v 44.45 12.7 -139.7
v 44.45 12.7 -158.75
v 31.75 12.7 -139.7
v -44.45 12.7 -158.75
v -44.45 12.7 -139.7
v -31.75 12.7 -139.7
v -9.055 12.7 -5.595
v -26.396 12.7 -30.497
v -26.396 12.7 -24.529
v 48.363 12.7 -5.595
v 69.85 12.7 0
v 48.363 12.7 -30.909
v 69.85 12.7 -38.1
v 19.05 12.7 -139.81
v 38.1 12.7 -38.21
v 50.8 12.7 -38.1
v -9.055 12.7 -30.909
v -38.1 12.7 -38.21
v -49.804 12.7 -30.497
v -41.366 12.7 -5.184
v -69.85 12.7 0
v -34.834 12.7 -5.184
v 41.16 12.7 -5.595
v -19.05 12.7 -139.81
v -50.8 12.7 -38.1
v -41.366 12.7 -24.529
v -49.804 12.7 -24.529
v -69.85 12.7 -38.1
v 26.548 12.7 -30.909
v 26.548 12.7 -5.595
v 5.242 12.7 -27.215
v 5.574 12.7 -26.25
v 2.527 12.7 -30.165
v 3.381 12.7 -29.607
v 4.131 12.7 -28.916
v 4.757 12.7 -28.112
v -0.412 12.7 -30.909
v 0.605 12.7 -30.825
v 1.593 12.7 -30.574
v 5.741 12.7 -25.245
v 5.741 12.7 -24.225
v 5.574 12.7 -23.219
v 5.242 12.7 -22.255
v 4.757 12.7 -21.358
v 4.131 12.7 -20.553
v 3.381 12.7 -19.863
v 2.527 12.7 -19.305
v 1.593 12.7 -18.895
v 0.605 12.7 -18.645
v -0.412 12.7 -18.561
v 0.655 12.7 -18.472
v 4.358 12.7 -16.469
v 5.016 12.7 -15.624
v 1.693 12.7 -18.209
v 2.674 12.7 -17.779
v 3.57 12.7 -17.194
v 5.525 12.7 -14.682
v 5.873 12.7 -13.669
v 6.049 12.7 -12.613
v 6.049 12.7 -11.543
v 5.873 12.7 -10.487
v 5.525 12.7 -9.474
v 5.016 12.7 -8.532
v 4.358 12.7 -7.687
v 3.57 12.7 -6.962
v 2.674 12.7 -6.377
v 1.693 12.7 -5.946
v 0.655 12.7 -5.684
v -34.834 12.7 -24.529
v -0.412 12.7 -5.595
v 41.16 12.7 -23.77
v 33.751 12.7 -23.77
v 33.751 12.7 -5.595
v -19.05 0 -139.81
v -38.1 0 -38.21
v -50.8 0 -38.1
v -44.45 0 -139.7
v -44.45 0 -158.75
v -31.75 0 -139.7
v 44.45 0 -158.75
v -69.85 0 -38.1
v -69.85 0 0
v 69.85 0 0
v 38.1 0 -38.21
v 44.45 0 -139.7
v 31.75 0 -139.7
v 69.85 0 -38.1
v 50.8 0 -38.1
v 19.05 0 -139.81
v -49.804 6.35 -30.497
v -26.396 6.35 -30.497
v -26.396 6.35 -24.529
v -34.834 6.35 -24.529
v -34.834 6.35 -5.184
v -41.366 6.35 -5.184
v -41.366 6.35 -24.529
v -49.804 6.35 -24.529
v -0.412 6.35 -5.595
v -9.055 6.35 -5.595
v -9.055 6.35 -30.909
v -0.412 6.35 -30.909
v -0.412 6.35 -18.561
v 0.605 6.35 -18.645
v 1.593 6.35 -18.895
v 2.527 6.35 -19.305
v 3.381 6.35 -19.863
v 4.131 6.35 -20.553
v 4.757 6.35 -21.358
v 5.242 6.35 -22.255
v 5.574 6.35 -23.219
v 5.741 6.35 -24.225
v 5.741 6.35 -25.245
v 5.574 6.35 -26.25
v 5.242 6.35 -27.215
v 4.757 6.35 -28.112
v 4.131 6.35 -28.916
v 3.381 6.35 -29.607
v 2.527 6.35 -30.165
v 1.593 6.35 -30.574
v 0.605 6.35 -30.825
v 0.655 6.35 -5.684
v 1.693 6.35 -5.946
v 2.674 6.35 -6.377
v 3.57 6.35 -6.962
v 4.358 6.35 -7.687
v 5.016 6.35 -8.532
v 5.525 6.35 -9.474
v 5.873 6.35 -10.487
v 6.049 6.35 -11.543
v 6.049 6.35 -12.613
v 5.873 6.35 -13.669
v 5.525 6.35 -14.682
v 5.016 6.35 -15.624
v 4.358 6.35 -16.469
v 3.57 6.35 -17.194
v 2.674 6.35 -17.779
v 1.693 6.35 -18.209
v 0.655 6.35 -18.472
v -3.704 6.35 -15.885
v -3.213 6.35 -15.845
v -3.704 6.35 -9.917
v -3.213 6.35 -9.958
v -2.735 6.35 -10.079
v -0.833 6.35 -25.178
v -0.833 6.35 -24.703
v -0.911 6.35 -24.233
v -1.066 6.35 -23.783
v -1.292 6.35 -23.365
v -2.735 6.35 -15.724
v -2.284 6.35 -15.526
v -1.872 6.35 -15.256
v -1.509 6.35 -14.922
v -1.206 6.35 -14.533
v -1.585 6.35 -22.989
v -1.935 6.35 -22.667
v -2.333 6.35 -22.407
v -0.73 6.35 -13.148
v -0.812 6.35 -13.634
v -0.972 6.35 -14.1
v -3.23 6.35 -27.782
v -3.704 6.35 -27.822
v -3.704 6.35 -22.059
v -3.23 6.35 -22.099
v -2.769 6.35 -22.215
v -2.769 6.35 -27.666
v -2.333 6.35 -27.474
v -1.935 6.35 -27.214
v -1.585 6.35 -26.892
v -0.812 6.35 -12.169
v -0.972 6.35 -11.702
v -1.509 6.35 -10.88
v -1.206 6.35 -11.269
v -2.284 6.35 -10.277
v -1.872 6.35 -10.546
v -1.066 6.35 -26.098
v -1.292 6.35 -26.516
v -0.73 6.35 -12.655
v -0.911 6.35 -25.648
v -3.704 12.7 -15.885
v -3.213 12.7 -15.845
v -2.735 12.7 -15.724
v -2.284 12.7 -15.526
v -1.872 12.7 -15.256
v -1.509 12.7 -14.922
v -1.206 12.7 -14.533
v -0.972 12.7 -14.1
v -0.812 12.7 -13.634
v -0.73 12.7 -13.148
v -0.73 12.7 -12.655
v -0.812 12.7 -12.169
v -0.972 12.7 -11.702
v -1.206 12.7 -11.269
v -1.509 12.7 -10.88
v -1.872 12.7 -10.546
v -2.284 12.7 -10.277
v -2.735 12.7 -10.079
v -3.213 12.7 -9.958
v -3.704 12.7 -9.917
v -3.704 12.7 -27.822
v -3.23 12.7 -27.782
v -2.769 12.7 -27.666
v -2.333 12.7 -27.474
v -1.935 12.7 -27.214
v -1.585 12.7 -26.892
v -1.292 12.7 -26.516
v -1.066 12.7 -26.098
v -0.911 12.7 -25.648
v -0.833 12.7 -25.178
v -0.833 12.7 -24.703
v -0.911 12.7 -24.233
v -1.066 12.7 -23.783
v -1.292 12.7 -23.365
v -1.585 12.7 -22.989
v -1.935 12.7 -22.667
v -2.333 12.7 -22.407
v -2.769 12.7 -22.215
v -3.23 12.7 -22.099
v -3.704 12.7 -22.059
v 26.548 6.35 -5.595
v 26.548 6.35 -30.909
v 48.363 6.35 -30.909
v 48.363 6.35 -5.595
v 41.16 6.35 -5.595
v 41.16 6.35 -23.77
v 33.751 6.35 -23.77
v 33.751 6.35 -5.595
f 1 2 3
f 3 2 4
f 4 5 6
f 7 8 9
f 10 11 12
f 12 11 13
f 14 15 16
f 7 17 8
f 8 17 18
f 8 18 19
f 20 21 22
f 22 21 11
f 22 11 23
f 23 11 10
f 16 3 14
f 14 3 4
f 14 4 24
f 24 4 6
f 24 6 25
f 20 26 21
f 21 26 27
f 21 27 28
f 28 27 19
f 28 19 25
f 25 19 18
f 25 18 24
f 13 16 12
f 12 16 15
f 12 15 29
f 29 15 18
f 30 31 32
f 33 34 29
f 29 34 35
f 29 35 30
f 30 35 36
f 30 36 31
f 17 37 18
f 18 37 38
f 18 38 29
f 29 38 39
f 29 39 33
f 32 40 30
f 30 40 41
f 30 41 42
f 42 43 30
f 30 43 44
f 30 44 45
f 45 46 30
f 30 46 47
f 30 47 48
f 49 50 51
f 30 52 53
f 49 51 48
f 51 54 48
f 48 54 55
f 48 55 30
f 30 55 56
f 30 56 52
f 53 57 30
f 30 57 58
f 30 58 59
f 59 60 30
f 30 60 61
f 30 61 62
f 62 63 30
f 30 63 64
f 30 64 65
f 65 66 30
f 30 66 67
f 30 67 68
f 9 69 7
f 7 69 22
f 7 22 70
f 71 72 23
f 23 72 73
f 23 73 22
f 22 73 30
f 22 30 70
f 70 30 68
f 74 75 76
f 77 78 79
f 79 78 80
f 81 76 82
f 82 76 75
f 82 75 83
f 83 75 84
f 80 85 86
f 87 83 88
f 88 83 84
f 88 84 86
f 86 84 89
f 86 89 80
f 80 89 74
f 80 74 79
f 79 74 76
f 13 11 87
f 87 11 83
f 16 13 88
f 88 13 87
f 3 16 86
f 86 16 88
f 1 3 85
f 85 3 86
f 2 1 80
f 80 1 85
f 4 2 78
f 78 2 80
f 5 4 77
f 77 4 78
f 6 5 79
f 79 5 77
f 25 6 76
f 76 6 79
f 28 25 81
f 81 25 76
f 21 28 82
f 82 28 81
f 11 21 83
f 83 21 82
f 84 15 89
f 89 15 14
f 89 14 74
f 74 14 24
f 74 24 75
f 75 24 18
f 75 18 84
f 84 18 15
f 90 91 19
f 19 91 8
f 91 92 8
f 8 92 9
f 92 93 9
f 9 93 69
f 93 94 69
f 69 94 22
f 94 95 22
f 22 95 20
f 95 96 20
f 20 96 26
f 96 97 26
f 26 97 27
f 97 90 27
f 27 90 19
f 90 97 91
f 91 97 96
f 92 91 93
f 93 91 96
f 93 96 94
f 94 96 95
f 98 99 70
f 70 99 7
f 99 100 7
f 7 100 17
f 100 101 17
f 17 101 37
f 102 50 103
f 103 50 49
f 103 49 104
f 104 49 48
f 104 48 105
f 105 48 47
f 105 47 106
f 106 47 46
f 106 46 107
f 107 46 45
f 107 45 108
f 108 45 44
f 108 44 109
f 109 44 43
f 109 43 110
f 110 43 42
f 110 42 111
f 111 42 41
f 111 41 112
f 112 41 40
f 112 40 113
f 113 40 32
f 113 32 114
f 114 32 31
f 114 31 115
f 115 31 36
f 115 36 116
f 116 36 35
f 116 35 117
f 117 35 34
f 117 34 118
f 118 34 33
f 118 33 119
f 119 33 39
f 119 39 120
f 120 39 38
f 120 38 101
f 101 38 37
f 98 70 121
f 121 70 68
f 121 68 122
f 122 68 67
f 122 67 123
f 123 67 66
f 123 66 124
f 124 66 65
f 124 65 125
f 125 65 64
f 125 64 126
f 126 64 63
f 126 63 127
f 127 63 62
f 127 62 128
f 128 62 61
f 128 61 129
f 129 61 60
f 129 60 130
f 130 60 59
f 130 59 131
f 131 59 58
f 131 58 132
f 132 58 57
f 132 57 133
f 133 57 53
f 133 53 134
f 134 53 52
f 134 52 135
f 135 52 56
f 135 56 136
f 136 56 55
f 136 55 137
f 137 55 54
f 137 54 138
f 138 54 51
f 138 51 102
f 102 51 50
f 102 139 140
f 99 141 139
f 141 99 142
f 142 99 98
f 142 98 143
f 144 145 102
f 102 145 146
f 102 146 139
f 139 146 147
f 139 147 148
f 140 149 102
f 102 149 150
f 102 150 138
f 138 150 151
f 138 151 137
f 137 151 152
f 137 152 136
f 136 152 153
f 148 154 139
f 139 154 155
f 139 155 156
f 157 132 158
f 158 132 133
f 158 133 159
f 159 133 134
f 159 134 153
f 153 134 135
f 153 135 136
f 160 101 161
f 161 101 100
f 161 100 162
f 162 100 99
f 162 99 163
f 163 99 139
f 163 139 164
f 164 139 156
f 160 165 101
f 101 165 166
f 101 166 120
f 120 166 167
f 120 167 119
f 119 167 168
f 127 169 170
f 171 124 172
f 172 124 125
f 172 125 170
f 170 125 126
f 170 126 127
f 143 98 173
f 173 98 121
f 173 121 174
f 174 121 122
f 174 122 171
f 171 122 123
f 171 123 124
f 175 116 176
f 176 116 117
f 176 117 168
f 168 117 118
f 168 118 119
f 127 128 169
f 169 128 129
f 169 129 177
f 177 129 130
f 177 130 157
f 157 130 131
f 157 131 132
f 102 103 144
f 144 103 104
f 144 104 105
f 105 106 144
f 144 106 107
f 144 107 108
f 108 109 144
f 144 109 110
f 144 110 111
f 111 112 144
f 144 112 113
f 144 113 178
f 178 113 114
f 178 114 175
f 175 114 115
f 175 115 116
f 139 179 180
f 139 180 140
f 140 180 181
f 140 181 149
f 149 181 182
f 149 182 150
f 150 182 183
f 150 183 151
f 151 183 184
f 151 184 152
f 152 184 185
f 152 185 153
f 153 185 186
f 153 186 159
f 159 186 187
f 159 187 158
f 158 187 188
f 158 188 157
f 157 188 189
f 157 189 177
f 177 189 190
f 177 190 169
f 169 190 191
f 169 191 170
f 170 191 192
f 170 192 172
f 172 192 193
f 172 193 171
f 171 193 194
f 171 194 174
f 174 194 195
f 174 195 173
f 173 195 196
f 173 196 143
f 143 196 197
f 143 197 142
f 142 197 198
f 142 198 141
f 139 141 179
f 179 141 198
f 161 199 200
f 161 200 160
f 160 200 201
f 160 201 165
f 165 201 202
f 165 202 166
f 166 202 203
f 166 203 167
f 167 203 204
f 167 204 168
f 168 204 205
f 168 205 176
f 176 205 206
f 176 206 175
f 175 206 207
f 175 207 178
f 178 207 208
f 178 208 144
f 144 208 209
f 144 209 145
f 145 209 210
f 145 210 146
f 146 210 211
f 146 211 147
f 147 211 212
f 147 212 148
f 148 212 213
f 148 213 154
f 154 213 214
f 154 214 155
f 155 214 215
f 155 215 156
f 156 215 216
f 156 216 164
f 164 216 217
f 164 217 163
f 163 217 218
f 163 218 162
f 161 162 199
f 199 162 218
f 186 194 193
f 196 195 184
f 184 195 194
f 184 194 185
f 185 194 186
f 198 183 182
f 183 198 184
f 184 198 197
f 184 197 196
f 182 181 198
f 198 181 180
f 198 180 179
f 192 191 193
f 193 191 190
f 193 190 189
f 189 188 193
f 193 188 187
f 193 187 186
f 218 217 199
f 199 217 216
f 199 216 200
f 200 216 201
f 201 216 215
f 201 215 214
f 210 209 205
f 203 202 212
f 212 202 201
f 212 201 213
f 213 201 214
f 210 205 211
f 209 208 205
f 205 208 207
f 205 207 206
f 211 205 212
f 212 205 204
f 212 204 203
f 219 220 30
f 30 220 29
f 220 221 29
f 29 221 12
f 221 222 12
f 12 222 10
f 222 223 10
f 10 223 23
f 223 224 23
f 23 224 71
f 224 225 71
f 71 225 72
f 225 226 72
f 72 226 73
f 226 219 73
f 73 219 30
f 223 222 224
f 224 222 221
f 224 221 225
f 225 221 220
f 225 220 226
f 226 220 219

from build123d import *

# Parameters (mm, degrees)
BOSS_EXTRUDE1_DEPTH     = 12.7
CUT_EXTRUDE2_DEPTH      = 33.274
CUT_EXTRUDE2_DEPTH_BACK = 25.4
CUT_EXTRUDE3_DEPTH      = 6.35
CUT_EXTRUDE4_DEPTH      = 6.35
CUT_EXTRUDE5_DEPTH      = 6.35


with BuildPart() as part:
    # Sketch1 → Boss-Extrude1 (new body)
    with BuildSketch(Plane(origin=(0, 0, 0), x_dir=(1, 0, 0), z_dir=(0, 1, 0))):
        Polygon((-69.85, 0), (0, 0), (69.85, 0), (69.85, 38.1), (50.8, 38.1), (31.75, 139.7), (44.45, 139.7), (44.45, 158.75), (0, 158.75), (-44.45, 158.75), (-44.45, 139.7), (-31.75, 139.7), (-50.8, 38.1), (-69.85, 38.1), align=None)
    extrude(amount=BOSS_EXTRUDE1_DEPTH)

    # Sketch3 → Cut-Extrude2 (cut, two sides)
    with BuildSketch(Plane(origin=(0, 0, 0), x_dir=(1, 0, 0), z_dir=(0, 1, 0))) as cut_extrude2_sk:
        Polygon((0, 38.209887603), (-38.1, 38.209887603), (-19.05, 139.809887603), (0, 139.809887603), (19.05, 139.809887603), (38.1, 38.209887603), align=None)
    extrude(amount=CUT_EXTRUDE2_DEPTH, mode=Mode.SUBTRACT)
    extrude(cut_extrude2_sk.sketch, amount=-CUT_EXTRUDE2_DEPTH_BACK, mode=Mode.SUBTRACT)

    # Sketch4 → Cut-Extrude3 (cut)
    with BuildSketch(Plane(origin=(0, 12.7, 0), x_dir=(1, 0, 0), z_dir=(0, 1, 0))):
        Polygon((-38.1, 30.497184411), (-26.396078431, 30.497184411), (-26.396078431, 24.528945876), (-34.833932912, 24.528945876), (-34.833932912, 5.183620969), (-38.1, 5.183620969), (-41.366067088, 5.183620969), (-41.366067088, 24.528945876), (-49.803921569, 24.528945876), (-49.803921569, 30.497184411), align=None)
    extrude(amount=-CUT_EXTRUDE3_DEPTH, mode=Mode.SUBTRACT)

    # Sketch5 → Cut-Extrude4 (cut)
    with BuildSketch(Plane(origin=(0, 12.7, 0), x_dir=(1, 0, 0), z_dir=(0, 1, 0))):
        with BuildLine():
            Line((-9.055258467, 5.595223627), (-9.055258467, 30.908787069))
            Line((-9.055258467, 30.908787069), (-0.411602658, 30.908787069))
            ThreePointArc((-0.411602658, 30.908787069), (5.762437206, 24.734747205), (-0.411602658, 18.560707341))
            ThreePointArc((-0.411602658, 18.560707341), (6.071139199, 12.077965484), (-0.411602658, 5.595223627))
            Line((-0.411602658, 5.595223627), (-9.055258467, 5.595223627))
        make_face()
        with BuildLine():
            Line((-3.704423918, 9.917051531), (-3.704423918, 15.885290066))
            ThreePointArc((-3.704423918, 15.885290066), (-0.720304651, 12.901170799), (-3.704423918, 9.917051531))
        make_face(mode=Mode.SUBTRACT)
        with BuildLine():
            Line((-3.704423918, 22.05932993), (-3.704423918, 27.821767137))
            ThreePointArc((-3.704423918, 27.821767137), (-0.823205315, 24.940548533), (-3.704423918, 22.05932993))
        make_face(mode=Mode.SUBTRACT)
    extrude(amount=-CUT_EXTRUDE4_DEPTH, mode=Mode.SUBTRACT)

    # Sketch6 → Cut-Extrude5 (cut)
    with BuildSketch(Plane(origin=(0, 12.7, 0), x_dir=(1, 0, 0), z_dir=(0, 1, 0))):
        Polygon((26.548371415, 5.595223627), (33.751417923, 5.595223627), (33.751417923, 23.769556722), (41.160265759, 23.769556722), (41.160265759, 5.595223627), (48.363312267, 5.595223627), (48.363312267, 30.908787069), (26.548371415, 30.908787069), align=None)
    extrude(amount=-CUT_EXTRUDE5_DEPTH, mode=Mode.SUBTRACT)


solid = part.part
